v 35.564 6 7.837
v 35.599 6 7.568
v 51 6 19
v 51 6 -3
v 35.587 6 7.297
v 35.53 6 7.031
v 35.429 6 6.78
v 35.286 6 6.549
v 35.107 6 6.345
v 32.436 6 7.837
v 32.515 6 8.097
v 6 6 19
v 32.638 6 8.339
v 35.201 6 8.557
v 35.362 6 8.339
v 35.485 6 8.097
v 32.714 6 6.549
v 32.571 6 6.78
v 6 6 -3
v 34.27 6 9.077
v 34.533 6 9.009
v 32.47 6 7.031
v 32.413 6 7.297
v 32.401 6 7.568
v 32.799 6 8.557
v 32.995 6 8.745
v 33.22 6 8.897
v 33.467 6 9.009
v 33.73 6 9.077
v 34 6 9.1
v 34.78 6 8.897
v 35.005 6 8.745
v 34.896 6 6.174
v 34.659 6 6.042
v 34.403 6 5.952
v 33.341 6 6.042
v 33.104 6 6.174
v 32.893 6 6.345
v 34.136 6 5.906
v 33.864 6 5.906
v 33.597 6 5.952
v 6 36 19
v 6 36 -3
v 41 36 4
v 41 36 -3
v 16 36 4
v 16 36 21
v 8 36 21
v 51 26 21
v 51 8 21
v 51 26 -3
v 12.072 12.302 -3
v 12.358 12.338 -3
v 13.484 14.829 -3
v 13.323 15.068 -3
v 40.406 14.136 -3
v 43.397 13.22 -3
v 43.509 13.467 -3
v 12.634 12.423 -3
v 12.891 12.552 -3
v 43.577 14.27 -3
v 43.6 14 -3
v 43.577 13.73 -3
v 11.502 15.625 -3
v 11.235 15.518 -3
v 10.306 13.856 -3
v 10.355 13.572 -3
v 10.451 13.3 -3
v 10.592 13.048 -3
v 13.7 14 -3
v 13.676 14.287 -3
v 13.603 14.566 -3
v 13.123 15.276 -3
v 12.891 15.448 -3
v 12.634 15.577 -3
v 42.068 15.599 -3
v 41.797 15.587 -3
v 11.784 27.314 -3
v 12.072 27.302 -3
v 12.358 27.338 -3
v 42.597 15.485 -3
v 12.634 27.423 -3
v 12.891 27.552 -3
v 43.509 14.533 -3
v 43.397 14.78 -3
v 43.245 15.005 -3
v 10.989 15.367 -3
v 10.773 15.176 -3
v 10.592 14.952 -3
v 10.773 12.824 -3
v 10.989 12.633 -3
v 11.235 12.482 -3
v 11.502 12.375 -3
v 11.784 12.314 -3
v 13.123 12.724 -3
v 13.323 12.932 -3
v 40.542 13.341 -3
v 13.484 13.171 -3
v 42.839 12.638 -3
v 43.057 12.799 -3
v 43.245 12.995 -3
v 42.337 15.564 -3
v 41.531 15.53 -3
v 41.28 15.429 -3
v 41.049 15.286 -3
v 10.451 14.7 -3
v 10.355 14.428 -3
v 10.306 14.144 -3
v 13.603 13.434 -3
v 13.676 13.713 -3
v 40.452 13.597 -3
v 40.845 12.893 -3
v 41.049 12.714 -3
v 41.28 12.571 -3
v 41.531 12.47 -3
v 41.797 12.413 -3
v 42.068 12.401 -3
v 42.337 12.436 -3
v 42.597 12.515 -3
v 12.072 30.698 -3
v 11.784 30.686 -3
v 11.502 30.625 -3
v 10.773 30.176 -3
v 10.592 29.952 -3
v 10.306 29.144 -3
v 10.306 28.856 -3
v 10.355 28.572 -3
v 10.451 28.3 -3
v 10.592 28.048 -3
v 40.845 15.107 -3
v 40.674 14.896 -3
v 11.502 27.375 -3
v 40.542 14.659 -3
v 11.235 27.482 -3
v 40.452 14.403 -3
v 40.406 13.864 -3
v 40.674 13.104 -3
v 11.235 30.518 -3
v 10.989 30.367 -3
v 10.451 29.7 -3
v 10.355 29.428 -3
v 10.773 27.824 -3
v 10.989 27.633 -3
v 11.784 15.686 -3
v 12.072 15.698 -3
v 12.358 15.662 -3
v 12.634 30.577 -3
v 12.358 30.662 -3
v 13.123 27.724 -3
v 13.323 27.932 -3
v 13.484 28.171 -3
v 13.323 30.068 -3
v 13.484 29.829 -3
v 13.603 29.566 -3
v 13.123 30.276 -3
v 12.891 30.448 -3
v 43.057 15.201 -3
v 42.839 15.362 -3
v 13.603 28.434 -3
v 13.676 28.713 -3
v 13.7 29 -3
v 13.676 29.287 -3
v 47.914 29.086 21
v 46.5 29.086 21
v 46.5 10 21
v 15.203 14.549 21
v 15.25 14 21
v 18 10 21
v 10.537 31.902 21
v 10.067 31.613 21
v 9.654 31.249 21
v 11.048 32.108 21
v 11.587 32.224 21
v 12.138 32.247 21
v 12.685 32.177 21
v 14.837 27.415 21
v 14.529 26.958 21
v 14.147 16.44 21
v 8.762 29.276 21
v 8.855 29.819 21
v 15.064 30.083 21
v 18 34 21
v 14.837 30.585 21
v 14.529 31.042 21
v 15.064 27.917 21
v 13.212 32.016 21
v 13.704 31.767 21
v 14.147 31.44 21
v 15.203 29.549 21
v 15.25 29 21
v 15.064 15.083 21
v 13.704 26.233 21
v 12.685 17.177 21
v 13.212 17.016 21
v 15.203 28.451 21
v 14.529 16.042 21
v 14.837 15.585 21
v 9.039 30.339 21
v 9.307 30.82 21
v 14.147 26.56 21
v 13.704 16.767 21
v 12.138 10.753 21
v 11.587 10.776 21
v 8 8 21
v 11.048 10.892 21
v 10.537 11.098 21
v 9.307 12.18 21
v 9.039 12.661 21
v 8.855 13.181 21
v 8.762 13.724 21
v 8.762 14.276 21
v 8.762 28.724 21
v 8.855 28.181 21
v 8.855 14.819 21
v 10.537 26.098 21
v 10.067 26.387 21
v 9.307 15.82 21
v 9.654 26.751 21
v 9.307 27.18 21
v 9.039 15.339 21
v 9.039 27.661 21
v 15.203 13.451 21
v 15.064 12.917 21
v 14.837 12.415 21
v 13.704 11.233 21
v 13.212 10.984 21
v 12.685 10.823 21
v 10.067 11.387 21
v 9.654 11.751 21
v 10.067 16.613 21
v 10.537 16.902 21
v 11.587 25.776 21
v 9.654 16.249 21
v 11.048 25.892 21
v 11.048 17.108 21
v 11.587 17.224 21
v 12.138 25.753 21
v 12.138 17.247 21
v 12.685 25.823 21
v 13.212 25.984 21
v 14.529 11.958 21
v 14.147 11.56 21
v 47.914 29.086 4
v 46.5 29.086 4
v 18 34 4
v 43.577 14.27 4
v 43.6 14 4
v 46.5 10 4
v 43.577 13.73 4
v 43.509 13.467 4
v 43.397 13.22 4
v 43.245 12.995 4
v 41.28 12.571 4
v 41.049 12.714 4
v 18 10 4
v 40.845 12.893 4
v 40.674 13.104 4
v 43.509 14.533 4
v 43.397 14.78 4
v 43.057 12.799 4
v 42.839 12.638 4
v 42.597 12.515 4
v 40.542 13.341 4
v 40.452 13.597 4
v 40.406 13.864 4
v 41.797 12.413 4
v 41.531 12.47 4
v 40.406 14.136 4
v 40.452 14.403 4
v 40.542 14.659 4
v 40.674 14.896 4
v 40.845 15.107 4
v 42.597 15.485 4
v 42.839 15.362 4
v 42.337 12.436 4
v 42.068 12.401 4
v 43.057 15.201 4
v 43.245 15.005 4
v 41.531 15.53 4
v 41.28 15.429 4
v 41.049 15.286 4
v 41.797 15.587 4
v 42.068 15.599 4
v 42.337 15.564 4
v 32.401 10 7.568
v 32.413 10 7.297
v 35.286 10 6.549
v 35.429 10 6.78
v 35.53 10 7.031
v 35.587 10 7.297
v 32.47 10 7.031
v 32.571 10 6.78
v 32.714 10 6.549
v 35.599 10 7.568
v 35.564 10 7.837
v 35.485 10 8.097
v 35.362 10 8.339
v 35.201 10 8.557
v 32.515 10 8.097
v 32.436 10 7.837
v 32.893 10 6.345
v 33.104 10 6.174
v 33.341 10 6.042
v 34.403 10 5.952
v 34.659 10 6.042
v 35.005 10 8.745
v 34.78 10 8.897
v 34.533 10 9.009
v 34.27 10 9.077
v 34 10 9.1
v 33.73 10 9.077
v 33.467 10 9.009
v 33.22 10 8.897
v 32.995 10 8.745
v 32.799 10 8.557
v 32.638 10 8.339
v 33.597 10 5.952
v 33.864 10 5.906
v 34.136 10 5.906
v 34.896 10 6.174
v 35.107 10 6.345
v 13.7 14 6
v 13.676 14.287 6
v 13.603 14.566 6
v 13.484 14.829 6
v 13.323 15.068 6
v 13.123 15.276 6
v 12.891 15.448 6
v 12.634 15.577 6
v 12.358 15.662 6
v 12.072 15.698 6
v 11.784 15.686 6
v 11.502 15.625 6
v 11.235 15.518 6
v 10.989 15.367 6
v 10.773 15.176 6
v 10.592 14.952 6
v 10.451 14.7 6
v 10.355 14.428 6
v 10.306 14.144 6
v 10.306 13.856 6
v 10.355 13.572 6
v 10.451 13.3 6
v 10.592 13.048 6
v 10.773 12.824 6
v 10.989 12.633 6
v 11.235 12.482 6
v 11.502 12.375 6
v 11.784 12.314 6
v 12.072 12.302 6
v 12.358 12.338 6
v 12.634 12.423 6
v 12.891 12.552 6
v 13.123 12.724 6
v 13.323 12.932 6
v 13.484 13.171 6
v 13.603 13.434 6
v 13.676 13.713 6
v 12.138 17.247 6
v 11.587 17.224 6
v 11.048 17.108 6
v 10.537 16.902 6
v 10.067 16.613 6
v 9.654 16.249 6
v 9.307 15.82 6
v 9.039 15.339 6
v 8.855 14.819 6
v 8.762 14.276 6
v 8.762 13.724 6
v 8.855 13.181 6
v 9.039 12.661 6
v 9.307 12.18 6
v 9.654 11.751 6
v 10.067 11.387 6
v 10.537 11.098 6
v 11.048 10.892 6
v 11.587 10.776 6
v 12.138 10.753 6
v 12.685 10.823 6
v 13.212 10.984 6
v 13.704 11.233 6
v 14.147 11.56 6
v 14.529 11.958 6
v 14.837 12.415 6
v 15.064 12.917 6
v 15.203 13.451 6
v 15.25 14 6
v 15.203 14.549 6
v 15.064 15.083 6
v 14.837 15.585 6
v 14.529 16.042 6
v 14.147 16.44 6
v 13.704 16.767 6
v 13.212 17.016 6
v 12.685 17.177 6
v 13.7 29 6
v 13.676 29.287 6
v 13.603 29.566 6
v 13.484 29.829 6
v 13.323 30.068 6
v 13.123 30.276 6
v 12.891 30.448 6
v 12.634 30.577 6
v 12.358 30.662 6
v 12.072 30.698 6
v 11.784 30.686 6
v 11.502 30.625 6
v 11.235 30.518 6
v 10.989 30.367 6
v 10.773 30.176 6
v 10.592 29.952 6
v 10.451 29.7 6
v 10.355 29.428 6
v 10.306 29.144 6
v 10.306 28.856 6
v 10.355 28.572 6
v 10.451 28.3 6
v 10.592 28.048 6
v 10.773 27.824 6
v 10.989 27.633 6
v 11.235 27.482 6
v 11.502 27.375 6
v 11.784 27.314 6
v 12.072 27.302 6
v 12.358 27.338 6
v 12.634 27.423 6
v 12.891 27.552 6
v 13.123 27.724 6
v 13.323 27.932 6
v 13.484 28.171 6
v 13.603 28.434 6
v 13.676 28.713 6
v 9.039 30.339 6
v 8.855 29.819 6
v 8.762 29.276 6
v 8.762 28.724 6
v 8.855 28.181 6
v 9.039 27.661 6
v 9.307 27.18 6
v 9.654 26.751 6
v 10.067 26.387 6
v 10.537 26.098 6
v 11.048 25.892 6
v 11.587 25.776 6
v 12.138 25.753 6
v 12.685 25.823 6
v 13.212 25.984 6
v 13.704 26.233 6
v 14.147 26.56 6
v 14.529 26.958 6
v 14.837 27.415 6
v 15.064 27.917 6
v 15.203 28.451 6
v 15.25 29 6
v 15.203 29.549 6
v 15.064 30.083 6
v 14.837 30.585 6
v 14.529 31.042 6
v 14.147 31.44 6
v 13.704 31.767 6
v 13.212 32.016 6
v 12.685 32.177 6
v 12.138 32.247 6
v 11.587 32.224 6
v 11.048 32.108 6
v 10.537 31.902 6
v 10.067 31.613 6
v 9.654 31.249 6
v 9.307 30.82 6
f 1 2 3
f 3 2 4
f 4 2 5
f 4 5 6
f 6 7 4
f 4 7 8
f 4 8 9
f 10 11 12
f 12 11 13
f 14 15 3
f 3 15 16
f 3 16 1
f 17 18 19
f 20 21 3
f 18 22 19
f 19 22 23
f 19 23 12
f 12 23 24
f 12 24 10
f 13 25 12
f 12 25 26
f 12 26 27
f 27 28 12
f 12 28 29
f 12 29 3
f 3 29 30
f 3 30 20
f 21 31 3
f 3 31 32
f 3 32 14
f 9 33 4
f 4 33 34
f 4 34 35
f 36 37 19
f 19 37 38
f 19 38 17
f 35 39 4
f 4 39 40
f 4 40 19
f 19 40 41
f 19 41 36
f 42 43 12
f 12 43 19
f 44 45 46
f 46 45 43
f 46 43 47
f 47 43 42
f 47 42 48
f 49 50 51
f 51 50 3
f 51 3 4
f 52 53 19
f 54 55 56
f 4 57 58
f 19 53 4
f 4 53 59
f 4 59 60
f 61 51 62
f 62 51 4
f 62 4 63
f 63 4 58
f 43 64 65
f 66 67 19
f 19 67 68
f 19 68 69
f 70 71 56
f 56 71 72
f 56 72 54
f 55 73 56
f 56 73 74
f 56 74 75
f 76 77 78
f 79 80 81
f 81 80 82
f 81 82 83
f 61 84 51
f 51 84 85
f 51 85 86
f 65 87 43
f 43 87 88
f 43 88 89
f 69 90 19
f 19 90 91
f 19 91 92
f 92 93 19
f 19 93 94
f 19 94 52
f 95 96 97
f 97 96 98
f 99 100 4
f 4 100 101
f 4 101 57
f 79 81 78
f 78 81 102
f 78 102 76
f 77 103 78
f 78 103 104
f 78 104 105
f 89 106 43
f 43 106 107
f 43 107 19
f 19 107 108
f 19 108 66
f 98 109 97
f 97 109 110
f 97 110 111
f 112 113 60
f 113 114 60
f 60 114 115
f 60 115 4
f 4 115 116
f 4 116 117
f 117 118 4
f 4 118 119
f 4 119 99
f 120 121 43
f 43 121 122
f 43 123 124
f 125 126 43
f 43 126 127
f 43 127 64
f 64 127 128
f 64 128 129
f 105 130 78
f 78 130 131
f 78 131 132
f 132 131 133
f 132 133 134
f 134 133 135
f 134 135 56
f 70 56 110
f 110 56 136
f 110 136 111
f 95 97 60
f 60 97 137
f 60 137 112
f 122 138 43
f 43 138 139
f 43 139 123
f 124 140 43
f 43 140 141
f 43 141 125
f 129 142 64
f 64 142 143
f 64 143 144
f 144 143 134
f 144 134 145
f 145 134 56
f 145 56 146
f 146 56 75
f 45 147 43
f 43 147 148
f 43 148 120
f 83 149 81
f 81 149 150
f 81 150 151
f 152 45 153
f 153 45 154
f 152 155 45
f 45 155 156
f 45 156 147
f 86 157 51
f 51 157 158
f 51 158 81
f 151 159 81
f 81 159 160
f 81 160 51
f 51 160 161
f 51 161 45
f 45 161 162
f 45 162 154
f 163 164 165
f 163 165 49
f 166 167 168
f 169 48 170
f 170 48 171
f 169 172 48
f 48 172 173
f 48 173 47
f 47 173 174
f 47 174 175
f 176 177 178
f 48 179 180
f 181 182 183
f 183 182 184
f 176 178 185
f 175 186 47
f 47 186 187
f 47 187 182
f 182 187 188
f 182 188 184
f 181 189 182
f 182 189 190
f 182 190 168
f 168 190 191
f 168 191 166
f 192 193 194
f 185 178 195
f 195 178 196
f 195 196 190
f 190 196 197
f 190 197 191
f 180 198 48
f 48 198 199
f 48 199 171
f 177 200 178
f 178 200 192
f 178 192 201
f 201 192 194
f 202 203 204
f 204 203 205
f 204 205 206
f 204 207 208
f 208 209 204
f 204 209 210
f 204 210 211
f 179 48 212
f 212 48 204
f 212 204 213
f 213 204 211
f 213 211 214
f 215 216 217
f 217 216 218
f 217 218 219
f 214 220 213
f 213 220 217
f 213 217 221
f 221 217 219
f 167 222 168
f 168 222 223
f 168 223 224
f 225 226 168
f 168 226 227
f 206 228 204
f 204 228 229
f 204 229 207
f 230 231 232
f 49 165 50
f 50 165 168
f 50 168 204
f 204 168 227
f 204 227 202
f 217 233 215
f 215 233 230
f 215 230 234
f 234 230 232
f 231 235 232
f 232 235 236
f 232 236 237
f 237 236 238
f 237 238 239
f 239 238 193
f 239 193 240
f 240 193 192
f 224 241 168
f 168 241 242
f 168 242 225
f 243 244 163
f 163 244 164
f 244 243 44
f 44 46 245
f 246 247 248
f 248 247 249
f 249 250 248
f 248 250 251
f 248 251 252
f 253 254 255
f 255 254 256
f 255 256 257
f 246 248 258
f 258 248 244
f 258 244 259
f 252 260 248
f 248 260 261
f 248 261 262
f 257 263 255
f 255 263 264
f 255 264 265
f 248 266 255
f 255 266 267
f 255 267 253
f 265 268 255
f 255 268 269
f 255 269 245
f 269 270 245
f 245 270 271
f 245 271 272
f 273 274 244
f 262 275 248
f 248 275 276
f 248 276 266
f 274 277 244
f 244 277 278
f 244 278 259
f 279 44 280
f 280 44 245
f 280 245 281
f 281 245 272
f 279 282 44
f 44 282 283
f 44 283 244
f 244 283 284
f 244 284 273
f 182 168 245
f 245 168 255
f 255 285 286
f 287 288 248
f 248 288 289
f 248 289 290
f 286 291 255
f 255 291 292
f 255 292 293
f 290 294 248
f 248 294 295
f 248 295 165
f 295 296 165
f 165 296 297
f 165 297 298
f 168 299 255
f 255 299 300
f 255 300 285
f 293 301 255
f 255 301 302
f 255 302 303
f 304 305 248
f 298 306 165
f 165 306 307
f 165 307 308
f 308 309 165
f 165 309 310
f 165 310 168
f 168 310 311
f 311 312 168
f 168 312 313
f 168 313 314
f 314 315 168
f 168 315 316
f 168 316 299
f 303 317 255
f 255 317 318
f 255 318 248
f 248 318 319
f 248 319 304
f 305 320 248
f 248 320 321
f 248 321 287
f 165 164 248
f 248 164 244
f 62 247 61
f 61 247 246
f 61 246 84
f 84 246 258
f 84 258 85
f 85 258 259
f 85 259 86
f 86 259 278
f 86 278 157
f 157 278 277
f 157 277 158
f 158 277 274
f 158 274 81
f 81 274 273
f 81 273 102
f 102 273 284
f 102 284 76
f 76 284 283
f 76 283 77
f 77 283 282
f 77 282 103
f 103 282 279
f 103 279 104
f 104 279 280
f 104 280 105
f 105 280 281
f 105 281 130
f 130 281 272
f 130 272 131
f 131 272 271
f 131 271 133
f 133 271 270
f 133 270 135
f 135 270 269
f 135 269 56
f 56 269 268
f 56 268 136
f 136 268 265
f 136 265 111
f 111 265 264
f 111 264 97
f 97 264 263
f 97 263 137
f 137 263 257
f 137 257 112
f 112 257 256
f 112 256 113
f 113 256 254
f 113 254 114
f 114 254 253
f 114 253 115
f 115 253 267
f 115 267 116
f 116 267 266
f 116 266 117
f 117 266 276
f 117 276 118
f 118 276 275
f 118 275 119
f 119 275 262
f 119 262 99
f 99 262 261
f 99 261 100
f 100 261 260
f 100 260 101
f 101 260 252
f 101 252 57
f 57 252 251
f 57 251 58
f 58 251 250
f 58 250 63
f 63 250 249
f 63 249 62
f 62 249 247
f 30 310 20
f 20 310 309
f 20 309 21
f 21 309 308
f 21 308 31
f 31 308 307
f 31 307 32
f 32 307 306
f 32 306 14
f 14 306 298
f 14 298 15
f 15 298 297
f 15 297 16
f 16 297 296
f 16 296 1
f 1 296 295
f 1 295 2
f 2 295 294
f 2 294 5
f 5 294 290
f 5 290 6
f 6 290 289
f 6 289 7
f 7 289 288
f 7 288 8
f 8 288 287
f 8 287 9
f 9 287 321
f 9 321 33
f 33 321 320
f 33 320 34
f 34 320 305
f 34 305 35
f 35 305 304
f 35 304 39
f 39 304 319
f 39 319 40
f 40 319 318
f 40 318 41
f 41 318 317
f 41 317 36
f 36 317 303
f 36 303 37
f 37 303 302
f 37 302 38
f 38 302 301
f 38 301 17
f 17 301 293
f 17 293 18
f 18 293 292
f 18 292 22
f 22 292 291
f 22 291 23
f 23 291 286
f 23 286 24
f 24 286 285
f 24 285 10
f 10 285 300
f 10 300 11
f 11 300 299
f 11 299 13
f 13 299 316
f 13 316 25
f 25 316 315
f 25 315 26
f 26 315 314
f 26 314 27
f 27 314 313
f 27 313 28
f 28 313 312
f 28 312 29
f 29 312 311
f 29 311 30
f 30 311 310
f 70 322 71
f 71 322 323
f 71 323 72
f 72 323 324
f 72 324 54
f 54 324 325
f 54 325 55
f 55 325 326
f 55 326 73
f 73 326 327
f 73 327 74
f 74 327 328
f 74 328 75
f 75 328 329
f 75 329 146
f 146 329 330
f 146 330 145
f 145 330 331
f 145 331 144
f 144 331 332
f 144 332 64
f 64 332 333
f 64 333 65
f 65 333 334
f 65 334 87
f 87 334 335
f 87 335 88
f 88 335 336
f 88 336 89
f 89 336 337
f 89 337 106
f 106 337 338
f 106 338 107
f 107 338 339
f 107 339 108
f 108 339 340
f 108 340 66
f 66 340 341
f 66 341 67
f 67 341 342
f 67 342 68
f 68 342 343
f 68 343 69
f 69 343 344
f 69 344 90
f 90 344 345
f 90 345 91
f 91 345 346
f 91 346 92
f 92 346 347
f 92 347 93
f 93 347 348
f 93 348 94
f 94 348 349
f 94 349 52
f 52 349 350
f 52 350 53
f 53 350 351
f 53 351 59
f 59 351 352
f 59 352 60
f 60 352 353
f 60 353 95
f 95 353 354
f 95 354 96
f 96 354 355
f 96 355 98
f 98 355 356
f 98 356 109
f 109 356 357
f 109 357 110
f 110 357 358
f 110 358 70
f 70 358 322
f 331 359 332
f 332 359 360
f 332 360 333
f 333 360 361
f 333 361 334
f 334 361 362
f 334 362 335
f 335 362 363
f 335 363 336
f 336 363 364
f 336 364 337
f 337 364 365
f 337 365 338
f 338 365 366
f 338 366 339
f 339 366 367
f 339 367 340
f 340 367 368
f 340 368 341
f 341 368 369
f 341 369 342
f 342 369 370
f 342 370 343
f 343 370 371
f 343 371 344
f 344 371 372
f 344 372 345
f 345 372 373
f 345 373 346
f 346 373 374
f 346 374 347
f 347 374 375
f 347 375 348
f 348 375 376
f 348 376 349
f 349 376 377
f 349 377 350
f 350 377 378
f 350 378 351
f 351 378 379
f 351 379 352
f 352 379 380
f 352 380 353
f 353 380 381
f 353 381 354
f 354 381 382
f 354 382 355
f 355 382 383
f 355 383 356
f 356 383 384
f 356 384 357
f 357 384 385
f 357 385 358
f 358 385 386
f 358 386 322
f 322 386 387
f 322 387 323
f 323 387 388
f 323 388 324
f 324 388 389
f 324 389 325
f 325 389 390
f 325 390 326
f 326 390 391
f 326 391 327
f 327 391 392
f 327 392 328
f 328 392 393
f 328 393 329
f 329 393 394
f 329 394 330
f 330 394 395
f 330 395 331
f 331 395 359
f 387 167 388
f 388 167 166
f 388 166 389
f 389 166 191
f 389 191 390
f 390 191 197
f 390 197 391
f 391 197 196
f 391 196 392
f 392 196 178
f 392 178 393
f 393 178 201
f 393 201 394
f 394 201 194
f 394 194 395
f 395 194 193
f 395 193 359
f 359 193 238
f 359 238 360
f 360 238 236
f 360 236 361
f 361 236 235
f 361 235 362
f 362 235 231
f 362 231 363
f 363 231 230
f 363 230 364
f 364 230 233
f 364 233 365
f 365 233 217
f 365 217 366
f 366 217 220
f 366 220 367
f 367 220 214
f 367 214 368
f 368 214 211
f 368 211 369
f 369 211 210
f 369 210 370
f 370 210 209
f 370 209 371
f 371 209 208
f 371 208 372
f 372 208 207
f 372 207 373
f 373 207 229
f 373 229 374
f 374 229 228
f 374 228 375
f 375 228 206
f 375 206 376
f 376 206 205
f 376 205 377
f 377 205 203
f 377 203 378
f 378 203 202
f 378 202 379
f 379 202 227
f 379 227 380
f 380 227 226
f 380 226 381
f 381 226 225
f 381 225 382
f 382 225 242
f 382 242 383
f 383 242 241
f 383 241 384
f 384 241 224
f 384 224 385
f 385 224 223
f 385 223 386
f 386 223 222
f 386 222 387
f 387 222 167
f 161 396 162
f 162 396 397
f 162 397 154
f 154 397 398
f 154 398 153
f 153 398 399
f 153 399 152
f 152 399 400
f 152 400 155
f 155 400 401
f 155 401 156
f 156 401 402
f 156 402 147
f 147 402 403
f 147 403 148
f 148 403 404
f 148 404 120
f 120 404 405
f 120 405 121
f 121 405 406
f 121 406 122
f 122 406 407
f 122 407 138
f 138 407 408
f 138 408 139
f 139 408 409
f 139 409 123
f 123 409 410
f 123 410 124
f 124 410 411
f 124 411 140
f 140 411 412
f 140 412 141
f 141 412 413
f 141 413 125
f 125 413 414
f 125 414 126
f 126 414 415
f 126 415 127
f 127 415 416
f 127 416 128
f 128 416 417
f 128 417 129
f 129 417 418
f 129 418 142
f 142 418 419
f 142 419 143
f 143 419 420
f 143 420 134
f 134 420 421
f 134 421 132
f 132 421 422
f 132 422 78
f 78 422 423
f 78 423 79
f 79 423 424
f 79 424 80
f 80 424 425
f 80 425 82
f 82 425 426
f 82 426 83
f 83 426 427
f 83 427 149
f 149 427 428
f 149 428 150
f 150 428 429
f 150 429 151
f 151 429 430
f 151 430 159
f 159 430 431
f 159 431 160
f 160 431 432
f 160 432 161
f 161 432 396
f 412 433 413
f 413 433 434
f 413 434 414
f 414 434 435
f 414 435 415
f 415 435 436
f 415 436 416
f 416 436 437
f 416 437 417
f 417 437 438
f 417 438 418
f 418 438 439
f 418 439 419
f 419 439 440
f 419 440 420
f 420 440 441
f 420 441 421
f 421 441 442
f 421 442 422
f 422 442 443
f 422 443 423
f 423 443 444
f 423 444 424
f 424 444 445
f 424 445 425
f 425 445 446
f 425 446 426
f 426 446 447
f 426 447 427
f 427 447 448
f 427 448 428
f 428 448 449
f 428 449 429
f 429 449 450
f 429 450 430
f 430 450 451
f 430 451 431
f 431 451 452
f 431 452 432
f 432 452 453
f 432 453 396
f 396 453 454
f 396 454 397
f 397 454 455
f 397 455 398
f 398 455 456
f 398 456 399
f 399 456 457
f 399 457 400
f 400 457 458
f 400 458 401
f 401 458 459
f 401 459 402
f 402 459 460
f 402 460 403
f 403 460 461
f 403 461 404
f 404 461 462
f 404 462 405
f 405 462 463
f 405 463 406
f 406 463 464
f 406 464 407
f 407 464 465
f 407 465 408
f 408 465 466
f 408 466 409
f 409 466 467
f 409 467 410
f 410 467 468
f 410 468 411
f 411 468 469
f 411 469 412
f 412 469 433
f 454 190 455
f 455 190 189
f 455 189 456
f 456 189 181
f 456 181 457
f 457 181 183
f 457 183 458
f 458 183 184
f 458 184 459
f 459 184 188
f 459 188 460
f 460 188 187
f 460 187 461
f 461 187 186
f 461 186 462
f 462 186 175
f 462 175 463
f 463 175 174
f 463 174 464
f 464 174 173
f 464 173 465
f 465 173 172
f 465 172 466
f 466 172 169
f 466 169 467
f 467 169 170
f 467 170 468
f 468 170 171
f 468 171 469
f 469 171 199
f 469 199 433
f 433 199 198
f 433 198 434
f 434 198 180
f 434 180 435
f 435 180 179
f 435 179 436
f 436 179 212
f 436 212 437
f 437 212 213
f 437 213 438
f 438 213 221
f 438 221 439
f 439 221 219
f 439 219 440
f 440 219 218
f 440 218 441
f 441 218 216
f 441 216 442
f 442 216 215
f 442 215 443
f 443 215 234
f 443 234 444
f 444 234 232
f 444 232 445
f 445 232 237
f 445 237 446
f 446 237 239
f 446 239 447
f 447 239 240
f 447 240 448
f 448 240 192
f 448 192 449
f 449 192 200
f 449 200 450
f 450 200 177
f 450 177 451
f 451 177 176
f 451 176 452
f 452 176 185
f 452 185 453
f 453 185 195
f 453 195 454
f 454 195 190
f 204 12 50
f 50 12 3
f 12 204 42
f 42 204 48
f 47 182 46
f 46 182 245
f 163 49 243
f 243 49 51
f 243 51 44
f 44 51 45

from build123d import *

# Parameters (mm, degrees)
SKETCH_1_W                  = 45
SKETCH_1_H                  = 30
EXTRUDE_1_DEPTH             = 24
SKETCH_2_W                  = 17
SKETCH_2_H                  = 6.914213562
CUT_EXTRUDE_1_DEPTH         = 33
CUT_EXTRUDE_2_REACH         = 62.975
SKETCH_4_W                  = 28.5
SKETCH_4_H                  = 17
HOLE_WIZARD_3_2_3_2_1_D     = 3.2
HOLE_WIZARD_3_2_3_2_2_D     = 3.2
HOLE_WIZARD_M31_D           = 3.4
HOLE_WIZARD_M31_CBORE_D     = 6.5
HOLE_WIZARD_M31_CBORE_DEPTH = 15
CHAMFER_1_SIZE              = 2
CHAMFER_2_SIZE              = 10


with BuildPart() as part:
    # Эскиз1 → Бобышка-Вытянуть1 (new body)
    with BuildSketch(Plane.XY.offset(21)):
        with Locations((28.500002027, 21)):
            Rectangle(SKETCH_1_W, SKETCH_1_H)
    extrude(amount=-EXTRUDE_1_DEPTH)

    # Эскиз2 → Вырез-Вытянуть1 (cut)
    with BuildSketch(Plane(origin=(51.000002027, 0, 0), x_dir=(0, 0, -1), z_dir=(1, 0, 0))):
        with Locations((-12.5, 32.542893219)):
            Rectangle(SKETCH_2_W, SKETCH_2_H)
    extrude(amount=-CUT_EXTRUDE_1_DEPTH, mode=Mode.SUBTRACT)

    # Эскиз4 → Вырез-Вытянуть2 (cut, up to next)
    with BuildSketch(Plane.XZ.offset(-10), mode=Mode.PRIVATE) as cut_extrude_2_sk1:
        with Locations((32.250002027, 12.5)):
            Rectangle(SKETCH_4_W, SKETCH_4_H)
    cut_extrude_2_tool1 = extrude(cut_extrude_2_sk1.sketch, amount=-CUT_EXTRUDE_2_REACH, mode=Mode.PRIVATE) & part.part
    add(cut_extrude_2_tool1.solids().sort_by_distance((32.250002, 10, 12.5))[0], mode=Mode.SUBTRACT)

    # Диаметр отверстия Ø3.2 (3.2)1 (through all)
    with Locations(Plane.XY.offset(4)):
        with Locations((42.000002027, 14)):
            Hole(HOLE_WIZARD_3_2_3_2_1_D / 2)

    # Диаметр отверстия Ø3.2 (3.2)2 (through all)
    with Locations(Plane(origin=(0, 10, 0), x_dir=(1, 0, 0), z_dir=(0, 1, 0))):
        with Locations((34.000002027, -7.5)):
            Hole(HOLE_WIZARD_3_2_3_2_2_D / 2)

    # Цековка для винта с заклепочной головкой M31 (through all)
    with Locations(Plane.XY.offset(21)):
        with Locations((12.000002027, 29), (12.000002027, 14)):
            CounterBoreHole(HOLE_WIZARD_M31_D / 2, HOLE_WIZARD_M31_CBORE_D / 2, HOLE_WIZARD_M31_CBORE_DEPTH)

    # Фаска1
    chamfer_1_edges = [part.edges().sort_by_distance(p)[0] for p in [
        (18.000002027, 36, 12.5),
        (6.000002027, 21, 21),
        (28.500002027, 6, 21),
    ]]
    chamfer(chamfer_1_edges, length=CHAMFER_1_SIZE)

    # Фаска2
    chamfer_2_edges = [part.edges().sort_by_distance(p)[0] for p in [
        (51.000002027, 36, 0.5),
    ]]
    chamfer(chamfer_2_edges, length=CHAMFER_2_SIZE)


solid = part.part
